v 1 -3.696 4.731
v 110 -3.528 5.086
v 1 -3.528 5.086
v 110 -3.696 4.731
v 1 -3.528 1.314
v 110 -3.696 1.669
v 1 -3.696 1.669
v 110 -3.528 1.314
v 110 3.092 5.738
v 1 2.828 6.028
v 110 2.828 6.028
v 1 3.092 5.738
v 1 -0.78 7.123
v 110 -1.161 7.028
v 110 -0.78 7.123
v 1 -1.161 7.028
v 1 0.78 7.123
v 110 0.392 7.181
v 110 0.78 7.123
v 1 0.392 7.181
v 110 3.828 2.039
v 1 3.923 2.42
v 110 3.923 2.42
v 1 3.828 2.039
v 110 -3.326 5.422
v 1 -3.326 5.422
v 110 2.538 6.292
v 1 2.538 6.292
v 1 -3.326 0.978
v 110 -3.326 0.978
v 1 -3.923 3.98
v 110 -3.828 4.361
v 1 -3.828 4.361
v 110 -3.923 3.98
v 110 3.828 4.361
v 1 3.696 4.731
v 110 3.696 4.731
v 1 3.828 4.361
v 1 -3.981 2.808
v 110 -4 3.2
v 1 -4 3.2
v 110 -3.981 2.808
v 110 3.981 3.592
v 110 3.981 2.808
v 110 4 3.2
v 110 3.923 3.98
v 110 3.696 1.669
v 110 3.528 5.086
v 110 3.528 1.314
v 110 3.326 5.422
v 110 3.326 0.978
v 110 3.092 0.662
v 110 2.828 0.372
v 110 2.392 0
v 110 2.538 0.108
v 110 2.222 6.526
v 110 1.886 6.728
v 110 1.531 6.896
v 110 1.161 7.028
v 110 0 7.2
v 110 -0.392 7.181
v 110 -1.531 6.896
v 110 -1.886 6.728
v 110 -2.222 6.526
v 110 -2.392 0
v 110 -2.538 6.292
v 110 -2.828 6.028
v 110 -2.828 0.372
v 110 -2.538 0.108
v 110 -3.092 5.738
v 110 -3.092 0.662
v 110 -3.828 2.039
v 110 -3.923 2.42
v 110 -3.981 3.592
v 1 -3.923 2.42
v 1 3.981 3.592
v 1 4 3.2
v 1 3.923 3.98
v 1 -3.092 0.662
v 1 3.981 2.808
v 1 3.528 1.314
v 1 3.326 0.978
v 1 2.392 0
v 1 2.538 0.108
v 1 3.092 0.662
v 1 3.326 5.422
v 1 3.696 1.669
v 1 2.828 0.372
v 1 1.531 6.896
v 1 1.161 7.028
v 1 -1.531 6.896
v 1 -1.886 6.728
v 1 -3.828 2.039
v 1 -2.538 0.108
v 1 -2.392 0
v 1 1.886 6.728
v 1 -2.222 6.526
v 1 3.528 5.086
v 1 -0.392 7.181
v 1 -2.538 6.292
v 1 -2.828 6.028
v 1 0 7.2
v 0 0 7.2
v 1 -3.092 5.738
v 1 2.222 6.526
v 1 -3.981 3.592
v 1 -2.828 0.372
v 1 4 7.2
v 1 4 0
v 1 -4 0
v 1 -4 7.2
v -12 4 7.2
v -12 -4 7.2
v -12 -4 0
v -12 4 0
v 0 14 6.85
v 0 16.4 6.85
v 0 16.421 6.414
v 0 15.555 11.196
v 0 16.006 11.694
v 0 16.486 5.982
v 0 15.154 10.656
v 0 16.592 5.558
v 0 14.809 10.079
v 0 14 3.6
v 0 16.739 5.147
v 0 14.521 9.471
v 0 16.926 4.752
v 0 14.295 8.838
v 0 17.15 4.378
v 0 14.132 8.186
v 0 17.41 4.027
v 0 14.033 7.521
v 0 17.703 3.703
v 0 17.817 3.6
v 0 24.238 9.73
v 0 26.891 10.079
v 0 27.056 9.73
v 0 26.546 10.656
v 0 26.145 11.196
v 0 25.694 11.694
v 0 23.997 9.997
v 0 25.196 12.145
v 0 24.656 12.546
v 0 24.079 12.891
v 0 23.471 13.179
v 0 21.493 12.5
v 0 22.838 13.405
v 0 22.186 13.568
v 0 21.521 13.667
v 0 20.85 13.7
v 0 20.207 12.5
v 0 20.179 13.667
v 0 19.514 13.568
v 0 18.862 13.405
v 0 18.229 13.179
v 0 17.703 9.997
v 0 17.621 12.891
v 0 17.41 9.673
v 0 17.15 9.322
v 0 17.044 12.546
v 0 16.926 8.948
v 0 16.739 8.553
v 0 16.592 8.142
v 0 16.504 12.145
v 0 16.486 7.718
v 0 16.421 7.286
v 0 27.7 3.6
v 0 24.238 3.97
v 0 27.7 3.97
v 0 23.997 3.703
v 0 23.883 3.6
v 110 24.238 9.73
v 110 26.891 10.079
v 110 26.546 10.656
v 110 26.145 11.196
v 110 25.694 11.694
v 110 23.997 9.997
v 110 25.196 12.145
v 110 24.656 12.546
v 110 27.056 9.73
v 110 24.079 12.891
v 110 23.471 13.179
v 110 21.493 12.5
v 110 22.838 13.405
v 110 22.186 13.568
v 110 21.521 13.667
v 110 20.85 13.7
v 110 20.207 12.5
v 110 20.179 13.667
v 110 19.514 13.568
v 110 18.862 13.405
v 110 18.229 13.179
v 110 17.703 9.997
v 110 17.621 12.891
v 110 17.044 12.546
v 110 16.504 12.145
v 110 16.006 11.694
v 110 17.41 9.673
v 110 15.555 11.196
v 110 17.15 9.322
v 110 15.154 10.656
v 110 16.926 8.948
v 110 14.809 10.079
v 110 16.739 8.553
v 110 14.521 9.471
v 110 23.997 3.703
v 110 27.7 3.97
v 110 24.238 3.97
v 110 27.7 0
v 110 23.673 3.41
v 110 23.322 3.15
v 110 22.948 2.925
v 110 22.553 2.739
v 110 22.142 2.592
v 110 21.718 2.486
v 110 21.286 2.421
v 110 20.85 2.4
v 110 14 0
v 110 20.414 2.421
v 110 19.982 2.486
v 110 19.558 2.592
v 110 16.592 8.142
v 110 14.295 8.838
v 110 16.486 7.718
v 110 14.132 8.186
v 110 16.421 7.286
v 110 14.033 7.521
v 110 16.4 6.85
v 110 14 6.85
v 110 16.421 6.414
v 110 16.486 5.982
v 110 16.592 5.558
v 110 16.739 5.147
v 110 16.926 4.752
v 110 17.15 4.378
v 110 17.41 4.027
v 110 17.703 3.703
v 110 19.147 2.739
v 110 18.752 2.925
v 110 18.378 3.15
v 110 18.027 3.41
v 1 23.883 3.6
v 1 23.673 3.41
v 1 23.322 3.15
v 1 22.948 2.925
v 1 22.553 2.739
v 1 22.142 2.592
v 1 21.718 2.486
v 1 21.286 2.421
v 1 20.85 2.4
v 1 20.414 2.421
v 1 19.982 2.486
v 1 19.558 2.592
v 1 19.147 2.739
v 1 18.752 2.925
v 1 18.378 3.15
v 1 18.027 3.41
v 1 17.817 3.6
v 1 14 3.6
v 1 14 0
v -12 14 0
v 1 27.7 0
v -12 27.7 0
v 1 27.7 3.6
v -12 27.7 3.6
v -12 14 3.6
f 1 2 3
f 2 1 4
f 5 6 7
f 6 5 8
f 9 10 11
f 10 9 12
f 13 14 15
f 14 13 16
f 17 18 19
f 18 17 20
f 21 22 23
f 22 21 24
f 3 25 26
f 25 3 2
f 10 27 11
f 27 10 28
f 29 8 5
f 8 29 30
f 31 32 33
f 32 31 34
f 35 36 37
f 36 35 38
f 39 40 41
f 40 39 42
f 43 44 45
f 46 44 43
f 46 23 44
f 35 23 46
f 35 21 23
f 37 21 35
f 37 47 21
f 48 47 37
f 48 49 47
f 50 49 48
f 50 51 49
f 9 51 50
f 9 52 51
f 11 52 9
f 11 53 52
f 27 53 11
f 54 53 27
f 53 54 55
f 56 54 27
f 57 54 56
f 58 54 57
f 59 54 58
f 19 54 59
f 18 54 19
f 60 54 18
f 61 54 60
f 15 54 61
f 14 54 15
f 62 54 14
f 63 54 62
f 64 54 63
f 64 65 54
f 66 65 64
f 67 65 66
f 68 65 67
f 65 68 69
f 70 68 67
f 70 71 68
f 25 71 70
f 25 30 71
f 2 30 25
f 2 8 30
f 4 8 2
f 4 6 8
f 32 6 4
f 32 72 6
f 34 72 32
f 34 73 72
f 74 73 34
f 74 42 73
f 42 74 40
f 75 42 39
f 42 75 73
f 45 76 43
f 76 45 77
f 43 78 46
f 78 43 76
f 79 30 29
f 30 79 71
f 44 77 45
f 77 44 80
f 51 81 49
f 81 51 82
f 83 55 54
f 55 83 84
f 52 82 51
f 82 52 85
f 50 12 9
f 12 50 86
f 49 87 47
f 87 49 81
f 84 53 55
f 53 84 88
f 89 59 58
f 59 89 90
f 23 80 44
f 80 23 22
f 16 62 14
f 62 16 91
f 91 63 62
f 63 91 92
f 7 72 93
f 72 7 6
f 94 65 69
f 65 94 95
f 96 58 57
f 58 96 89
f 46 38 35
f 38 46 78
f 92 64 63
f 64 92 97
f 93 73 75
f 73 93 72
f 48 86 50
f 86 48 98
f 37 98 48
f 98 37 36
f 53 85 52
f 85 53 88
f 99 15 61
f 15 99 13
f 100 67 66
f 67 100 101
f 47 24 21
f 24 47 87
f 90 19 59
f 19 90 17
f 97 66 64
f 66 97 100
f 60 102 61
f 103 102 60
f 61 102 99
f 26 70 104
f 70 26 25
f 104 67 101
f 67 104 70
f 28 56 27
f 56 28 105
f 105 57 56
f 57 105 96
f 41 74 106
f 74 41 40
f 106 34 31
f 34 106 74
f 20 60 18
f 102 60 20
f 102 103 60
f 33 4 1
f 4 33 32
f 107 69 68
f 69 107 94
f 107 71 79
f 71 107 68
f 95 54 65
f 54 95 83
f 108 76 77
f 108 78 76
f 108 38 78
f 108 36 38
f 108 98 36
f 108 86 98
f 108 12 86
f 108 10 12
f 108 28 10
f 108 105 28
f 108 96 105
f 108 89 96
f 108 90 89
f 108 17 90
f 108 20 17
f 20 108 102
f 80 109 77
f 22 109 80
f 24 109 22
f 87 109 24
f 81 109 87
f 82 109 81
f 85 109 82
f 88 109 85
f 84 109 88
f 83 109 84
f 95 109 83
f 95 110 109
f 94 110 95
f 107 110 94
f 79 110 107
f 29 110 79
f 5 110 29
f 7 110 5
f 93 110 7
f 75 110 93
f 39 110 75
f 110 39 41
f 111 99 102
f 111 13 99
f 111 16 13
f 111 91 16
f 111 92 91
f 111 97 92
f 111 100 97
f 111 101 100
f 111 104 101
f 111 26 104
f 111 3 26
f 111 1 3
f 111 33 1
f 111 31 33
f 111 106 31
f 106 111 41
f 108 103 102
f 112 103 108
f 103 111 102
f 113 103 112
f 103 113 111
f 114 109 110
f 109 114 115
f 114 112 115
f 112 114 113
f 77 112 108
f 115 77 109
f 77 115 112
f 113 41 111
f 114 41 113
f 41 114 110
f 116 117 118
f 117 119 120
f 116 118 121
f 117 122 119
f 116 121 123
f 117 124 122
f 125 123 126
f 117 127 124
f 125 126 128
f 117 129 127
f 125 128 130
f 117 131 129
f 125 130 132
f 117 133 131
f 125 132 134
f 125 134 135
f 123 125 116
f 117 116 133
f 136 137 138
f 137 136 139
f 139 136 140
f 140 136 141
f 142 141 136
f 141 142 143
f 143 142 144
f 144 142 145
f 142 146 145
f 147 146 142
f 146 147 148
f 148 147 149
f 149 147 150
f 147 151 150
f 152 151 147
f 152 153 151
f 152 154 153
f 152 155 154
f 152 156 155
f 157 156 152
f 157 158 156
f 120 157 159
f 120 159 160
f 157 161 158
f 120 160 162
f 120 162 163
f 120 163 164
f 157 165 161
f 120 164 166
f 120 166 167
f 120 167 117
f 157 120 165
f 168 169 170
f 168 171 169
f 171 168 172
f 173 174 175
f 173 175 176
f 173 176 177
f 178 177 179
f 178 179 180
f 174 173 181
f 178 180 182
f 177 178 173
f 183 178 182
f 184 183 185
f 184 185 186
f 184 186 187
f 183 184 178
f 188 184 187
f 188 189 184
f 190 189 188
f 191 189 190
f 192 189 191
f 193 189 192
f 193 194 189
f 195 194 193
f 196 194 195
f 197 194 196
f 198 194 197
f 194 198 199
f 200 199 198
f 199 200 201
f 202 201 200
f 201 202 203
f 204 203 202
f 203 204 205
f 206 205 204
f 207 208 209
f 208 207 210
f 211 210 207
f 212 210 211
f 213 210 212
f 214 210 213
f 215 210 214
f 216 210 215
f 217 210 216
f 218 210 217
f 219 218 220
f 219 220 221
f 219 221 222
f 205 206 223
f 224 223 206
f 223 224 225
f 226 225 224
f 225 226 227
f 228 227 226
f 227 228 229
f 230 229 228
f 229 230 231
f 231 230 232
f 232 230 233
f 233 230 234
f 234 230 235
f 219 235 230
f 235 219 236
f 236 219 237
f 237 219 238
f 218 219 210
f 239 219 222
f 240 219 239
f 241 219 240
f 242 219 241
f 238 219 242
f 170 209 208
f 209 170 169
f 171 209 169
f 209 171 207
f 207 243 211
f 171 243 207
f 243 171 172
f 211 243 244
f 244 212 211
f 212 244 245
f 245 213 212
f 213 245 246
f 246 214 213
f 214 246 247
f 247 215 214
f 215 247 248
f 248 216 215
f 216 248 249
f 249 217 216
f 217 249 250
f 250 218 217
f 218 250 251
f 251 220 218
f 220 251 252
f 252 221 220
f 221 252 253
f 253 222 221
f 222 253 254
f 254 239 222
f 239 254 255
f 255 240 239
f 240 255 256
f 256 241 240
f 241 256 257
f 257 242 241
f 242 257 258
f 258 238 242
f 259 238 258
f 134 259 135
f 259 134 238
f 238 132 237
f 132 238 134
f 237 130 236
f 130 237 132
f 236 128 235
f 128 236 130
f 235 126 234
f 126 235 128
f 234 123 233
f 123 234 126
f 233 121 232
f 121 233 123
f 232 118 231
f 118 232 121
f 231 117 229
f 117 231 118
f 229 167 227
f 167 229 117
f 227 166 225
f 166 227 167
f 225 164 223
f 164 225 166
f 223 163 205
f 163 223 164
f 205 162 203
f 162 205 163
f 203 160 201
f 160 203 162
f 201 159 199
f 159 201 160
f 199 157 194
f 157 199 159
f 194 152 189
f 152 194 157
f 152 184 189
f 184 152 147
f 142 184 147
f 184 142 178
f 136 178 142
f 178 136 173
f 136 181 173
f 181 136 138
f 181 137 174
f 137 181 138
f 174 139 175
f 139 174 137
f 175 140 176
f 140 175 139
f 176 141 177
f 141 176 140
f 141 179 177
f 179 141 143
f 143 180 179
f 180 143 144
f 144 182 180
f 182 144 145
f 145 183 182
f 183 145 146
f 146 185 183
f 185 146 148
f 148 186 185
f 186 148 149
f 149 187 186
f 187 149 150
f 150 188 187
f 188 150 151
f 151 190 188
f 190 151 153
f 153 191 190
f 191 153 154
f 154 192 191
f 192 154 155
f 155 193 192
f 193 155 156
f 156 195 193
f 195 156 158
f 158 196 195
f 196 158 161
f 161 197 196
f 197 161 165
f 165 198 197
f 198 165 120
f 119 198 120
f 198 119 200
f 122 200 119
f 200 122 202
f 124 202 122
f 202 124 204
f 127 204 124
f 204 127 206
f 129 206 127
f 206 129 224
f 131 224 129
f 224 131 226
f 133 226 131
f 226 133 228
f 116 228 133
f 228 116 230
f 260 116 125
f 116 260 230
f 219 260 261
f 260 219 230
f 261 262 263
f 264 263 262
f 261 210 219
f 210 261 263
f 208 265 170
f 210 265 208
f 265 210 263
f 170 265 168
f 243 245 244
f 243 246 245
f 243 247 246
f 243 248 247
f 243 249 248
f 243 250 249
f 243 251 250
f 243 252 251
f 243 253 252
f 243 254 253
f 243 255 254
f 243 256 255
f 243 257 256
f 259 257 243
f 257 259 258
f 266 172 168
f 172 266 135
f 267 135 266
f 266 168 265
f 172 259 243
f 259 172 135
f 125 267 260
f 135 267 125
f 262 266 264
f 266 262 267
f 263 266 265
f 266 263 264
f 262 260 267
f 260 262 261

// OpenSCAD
// Slide-On Bag Clip — no springs, no hinges, nothing to break.
// Fold the bag top over the ROD, then slide the CHANNEL along it.
// Prints as two parts side by side, flat, no supports.
// Tip: PETG gives the best grip; PLA works fine.

/* [Size] */
// Length of the clip (mm). Should be a bit longer than the bag is wide.
length = 110;           // [40:1:250]
// Rod diameter (mm)
rod_d = 8;              // [5:0.5:14]
// Extra space for the folded bag (mm). Thicker bags need more.
bag_gap = 0.45;         // [0.2:0.05:1.2]
// Channel wall thickness (mm)
wall = 2.4;             // [1.6:0.2:4]

/* [Hidden] */
$fn = 64;
flat = 0.8;                    // flat bottom on the rod so it sits on the bed
in_r = rod_d / 2 + bag_gap;
out_r = in_r + wall;
slot = rod_d * 0.72;           // narrower than the rod so it can't pull out

module rod() {
    translate([0, 0, rod_d / 2 - flat])
    difference() {
        rotate([0, 90, 0]) cylinder(d = rod_d, h = length);
        translate([-1, -rod_d, -rod_d - rod_d / 2 + flat]) cube([length + 2, 2 * rod_d, rod_d]);
    }
    // grip tab on the end
    translate([-12, -rod_d / 2, 0]) cube([13, rod_d, rod_d - flat]);
}

// teardrop (point up, tip trimmed) so the top of the bore prints without supports
module teardrop2d(r) {
    intersection() {
        union() { circle(r); rotate(45) square(r); }
        translate([-r, -r]) square([2 * r, 2 * r + wall / 2]);
    }
}

module channel_profile() {
    difference() {
        hull() {
            translate([0, out_r]) circle(out_r);
            translate([-out_r, 0]) square([2 * out_r, 0.01]);
        }
        translate([0, out_r]) {
            teardrop2d(in_r);
            // slot faces sideways
            translate([0, -slot / 2]) square([out_r + 1, slot]);
        }
    }
}

module channel() {
    rotate([90, 0, 90]) linear_extrude(length) channel_profile();
    translate([-12, -out_r, 0]) cube([13, 2 * out_r, wall * 1.5]);
}

rod();
translate([0, rod_d + out_r + 6, 0]) channel();
